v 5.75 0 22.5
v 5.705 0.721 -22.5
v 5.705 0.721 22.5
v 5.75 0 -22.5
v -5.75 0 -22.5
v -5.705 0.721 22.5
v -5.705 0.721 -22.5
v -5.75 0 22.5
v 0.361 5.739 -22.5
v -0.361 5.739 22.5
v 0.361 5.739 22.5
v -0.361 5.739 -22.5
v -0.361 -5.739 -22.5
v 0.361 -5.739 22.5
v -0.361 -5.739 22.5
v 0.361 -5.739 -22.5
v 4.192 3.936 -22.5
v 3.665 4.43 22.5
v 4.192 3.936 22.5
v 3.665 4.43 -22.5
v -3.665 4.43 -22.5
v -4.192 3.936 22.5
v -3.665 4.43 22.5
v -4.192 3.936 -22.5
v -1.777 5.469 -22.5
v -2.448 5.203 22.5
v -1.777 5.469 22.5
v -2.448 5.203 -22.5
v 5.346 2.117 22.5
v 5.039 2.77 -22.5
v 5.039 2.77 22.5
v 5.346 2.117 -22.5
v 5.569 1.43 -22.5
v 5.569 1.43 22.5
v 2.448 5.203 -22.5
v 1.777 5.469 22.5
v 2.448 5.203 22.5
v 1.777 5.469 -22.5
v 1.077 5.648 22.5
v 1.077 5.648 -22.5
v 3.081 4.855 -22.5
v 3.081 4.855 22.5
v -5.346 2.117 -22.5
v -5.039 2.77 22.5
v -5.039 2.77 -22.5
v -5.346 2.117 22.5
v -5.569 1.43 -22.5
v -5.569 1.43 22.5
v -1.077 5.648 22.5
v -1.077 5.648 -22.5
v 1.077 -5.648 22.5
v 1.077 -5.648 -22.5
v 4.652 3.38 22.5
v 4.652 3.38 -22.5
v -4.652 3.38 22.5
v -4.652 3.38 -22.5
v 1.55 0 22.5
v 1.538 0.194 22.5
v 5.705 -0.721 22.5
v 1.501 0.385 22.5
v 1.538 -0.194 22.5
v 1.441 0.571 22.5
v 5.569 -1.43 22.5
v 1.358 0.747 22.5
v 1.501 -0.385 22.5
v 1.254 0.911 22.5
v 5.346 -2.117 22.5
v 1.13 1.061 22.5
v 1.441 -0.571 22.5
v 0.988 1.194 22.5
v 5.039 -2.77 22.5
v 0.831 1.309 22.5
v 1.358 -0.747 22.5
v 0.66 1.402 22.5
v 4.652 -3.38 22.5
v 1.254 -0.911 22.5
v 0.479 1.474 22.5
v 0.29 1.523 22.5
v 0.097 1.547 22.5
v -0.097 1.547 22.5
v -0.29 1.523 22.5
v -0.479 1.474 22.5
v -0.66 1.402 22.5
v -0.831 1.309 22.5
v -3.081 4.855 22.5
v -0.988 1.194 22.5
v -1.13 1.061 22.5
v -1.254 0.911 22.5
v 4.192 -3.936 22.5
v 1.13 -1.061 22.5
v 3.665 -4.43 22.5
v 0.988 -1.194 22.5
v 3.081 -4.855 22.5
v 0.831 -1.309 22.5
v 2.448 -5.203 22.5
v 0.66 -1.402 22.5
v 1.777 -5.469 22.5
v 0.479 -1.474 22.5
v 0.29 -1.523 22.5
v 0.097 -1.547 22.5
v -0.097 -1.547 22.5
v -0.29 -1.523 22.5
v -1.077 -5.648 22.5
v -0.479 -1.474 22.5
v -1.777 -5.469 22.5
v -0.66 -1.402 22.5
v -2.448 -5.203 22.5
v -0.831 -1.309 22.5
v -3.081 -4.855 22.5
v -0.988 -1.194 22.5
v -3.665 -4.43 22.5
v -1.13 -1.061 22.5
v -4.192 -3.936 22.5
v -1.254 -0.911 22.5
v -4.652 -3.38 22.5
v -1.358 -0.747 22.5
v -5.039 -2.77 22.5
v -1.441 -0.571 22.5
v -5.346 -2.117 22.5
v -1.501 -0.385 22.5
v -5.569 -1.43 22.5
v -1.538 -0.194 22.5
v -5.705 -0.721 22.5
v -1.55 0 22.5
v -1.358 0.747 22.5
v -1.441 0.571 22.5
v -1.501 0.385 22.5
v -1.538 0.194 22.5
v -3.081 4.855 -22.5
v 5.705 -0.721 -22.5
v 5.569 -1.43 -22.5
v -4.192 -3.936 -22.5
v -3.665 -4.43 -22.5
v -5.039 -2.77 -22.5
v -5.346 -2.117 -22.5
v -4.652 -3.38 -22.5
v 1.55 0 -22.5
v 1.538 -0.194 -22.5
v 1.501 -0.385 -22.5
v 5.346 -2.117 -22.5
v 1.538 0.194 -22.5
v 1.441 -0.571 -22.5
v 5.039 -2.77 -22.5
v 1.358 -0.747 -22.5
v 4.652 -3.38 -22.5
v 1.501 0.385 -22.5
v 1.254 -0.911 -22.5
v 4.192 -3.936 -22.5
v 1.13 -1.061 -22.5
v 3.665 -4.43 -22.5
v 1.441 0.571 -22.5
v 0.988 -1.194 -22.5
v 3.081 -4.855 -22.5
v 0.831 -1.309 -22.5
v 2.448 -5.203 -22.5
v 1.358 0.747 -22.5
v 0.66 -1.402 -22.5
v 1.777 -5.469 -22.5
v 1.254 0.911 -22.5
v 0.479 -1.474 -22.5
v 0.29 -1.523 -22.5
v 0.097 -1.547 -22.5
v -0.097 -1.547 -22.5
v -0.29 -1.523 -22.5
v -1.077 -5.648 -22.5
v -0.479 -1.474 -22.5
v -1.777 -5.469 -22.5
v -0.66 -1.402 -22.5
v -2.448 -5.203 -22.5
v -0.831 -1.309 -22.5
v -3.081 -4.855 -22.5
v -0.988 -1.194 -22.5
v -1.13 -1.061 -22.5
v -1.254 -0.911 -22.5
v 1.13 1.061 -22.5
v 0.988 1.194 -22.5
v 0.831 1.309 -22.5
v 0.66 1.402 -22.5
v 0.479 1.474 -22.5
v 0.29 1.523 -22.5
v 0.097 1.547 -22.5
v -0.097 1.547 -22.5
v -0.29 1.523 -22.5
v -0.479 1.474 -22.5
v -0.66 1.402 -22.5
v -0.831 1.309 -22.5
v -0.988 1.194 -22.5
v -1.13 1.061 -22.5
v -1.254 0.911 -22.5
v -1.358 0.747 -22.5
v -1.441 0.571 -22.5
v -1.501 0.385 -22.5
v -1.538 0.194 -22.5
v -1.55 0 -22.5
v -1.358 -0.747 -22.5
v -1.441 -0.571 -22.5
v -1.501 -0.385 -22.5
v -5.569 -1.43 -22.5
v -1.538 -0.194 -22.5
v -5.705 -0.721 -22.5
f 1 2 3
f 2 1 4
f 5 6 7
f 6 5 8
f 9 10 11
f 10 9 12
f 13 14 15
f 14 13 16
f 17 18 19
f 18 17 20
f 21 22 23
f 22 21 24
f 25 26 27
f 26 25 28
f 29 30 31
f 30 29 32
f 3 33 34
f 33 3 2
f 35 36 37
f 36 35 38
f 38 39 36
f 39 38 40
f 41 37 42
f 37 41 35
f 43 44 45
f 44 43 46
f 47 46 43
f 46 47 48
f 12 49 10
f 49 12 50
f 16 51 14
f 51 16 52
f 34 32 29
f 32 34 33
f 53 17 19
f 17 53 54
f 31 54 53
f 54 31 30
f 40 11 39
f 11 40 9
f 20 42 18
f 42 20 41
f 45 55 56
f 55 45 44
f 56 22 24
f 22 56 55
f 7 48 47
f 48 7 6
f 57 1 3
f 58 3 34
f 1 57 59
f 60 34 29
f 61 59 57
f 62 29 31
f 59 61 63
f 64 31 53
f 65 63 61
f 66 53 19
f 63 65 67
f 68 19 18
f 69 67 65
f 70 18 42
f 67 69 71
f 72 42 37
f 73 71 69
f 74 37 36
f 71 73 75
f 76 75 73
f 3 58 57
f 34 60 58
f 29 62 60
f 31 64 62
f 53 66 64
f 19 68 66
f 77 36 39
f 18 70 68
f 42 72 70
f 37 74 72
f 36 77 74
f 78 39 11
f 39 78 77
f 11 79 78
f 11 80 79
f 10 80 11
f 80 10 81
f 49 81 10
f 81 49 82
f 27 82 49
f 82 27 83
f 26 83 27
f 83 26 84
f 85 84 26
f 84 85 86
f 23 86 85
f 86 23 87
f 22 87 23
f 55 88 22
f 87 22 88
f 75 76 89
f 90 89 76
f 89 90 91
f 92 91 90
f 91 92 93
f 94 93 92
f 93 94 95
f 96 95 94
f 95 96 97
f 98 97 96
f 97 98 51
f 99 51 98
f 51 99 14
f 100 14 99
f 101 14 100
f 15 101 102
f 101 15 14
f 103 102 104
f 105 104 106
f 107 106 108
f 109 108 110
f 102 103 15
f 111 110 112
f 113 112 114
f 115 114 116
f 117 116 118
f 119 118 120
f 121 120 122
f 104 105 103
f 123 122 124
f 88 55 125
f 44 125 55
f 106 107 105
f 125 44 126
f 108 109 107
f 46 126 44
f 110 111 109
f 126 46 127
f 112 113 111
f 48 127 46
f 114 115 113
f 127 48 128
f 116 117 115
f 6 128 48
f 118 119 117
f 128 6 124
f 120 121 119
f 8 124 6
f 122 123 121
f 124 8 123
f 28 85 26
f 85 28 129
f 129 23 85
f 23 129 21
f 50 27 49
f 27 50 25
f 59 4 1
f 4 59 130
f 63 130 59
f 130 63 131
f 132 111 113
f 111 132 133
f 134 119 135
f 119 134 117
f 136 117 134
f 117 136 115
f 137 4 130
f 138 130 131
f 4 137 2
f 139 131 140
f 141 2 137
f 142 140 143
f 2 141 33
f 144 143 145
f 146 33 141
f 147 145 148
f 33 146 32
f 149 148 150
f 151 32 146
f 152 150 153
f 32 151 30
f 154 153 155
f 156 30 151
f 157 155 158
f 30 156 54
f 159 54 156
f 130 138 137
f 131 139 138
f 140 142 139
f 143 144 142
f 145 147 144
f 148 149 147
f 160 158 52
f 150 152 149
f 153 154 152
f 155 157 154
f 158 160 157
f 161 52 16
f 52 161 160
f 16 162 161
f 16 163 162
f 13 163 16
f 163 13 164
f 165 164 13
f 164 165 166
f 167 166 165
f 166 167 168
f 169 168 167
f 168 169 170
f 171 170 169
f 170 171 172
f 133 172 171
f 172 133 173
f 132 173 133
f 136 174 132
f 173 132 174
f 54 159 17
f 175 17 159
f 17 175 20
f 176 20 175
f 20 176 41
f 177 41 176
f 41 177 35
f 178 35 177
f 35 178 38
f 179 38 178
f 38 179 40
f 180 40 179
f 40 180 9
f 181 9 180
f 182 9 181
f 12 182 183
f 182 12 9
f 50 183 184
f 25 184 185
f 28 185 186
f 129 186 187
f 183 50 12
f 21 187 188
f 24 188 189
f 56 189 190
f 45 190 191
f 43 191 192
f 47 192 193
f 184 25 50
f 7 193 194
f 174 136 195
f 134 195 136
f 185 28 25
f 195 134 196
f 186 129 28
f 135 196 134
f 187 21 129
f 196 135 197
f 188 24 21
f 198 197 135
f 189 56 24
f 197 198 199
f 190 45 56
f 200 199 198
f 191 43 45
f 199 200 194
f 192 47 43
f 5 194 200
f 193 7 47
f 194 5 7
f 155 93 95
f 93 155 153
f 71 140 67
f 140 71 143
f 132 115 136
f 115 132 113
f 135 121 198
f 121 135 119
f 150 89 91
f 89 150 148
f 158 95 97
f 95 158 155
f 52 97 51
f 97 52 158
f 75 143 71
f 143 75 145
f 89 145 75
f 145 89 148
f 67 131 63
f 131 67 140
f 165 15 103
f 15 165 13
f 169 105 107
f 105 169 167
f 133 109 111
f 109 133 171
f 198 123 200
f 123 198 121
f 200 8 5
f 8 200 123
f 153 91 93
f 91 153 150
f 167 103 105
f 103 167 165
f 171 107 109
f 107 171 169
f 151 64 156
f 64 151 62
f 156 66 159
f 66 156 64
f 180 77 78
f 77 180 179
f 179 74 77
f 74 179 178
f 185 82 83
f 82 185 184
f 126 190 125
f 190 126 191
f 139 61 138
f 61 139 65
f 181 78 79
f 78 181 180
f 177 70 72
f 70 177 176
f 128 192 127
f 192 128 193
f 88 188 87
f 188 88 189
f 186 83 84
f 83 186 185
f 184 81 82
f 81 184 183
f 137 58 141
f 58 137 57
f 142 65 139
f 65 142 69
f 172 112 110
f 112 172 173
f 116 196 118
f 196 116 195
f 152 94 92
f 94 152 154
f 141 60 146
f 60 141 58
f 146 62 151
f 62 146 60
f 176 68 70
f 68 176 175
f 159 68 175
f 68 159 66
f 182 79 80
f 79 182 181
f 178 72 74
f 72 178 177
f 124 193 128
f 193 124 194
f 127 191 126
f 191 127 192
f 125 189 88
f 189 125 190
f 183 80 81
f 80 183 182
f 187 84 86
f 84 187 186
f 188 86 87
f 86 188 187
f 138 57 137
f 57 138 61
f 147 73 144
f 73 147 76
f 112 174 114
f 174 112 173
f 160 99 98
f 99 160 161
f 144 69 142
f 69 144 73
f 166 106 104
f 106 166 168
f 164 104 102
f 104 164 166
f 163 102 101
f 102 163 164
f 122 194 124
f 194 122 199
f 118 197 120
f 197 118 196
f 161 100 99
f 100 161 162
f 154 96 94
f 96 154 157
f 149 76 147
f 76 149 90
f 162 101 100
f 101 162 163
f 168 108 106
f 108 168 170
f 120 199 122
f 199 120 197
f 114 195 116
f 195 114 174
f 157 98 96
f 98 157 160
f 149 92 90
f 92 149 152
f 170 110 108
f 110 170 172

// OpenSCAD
$fn = 50;


difference() {
	union() {
		translate(v = [0, 0, -22.5000000000]) {
			cylinder(h = 45, r = 5.7500000000);
		}
	}
	union() {
		translate(v = [0, 0, -100.0000000000]) {
			cylinder(h = 200, r = 1.5500000000);
		}
	}
}
